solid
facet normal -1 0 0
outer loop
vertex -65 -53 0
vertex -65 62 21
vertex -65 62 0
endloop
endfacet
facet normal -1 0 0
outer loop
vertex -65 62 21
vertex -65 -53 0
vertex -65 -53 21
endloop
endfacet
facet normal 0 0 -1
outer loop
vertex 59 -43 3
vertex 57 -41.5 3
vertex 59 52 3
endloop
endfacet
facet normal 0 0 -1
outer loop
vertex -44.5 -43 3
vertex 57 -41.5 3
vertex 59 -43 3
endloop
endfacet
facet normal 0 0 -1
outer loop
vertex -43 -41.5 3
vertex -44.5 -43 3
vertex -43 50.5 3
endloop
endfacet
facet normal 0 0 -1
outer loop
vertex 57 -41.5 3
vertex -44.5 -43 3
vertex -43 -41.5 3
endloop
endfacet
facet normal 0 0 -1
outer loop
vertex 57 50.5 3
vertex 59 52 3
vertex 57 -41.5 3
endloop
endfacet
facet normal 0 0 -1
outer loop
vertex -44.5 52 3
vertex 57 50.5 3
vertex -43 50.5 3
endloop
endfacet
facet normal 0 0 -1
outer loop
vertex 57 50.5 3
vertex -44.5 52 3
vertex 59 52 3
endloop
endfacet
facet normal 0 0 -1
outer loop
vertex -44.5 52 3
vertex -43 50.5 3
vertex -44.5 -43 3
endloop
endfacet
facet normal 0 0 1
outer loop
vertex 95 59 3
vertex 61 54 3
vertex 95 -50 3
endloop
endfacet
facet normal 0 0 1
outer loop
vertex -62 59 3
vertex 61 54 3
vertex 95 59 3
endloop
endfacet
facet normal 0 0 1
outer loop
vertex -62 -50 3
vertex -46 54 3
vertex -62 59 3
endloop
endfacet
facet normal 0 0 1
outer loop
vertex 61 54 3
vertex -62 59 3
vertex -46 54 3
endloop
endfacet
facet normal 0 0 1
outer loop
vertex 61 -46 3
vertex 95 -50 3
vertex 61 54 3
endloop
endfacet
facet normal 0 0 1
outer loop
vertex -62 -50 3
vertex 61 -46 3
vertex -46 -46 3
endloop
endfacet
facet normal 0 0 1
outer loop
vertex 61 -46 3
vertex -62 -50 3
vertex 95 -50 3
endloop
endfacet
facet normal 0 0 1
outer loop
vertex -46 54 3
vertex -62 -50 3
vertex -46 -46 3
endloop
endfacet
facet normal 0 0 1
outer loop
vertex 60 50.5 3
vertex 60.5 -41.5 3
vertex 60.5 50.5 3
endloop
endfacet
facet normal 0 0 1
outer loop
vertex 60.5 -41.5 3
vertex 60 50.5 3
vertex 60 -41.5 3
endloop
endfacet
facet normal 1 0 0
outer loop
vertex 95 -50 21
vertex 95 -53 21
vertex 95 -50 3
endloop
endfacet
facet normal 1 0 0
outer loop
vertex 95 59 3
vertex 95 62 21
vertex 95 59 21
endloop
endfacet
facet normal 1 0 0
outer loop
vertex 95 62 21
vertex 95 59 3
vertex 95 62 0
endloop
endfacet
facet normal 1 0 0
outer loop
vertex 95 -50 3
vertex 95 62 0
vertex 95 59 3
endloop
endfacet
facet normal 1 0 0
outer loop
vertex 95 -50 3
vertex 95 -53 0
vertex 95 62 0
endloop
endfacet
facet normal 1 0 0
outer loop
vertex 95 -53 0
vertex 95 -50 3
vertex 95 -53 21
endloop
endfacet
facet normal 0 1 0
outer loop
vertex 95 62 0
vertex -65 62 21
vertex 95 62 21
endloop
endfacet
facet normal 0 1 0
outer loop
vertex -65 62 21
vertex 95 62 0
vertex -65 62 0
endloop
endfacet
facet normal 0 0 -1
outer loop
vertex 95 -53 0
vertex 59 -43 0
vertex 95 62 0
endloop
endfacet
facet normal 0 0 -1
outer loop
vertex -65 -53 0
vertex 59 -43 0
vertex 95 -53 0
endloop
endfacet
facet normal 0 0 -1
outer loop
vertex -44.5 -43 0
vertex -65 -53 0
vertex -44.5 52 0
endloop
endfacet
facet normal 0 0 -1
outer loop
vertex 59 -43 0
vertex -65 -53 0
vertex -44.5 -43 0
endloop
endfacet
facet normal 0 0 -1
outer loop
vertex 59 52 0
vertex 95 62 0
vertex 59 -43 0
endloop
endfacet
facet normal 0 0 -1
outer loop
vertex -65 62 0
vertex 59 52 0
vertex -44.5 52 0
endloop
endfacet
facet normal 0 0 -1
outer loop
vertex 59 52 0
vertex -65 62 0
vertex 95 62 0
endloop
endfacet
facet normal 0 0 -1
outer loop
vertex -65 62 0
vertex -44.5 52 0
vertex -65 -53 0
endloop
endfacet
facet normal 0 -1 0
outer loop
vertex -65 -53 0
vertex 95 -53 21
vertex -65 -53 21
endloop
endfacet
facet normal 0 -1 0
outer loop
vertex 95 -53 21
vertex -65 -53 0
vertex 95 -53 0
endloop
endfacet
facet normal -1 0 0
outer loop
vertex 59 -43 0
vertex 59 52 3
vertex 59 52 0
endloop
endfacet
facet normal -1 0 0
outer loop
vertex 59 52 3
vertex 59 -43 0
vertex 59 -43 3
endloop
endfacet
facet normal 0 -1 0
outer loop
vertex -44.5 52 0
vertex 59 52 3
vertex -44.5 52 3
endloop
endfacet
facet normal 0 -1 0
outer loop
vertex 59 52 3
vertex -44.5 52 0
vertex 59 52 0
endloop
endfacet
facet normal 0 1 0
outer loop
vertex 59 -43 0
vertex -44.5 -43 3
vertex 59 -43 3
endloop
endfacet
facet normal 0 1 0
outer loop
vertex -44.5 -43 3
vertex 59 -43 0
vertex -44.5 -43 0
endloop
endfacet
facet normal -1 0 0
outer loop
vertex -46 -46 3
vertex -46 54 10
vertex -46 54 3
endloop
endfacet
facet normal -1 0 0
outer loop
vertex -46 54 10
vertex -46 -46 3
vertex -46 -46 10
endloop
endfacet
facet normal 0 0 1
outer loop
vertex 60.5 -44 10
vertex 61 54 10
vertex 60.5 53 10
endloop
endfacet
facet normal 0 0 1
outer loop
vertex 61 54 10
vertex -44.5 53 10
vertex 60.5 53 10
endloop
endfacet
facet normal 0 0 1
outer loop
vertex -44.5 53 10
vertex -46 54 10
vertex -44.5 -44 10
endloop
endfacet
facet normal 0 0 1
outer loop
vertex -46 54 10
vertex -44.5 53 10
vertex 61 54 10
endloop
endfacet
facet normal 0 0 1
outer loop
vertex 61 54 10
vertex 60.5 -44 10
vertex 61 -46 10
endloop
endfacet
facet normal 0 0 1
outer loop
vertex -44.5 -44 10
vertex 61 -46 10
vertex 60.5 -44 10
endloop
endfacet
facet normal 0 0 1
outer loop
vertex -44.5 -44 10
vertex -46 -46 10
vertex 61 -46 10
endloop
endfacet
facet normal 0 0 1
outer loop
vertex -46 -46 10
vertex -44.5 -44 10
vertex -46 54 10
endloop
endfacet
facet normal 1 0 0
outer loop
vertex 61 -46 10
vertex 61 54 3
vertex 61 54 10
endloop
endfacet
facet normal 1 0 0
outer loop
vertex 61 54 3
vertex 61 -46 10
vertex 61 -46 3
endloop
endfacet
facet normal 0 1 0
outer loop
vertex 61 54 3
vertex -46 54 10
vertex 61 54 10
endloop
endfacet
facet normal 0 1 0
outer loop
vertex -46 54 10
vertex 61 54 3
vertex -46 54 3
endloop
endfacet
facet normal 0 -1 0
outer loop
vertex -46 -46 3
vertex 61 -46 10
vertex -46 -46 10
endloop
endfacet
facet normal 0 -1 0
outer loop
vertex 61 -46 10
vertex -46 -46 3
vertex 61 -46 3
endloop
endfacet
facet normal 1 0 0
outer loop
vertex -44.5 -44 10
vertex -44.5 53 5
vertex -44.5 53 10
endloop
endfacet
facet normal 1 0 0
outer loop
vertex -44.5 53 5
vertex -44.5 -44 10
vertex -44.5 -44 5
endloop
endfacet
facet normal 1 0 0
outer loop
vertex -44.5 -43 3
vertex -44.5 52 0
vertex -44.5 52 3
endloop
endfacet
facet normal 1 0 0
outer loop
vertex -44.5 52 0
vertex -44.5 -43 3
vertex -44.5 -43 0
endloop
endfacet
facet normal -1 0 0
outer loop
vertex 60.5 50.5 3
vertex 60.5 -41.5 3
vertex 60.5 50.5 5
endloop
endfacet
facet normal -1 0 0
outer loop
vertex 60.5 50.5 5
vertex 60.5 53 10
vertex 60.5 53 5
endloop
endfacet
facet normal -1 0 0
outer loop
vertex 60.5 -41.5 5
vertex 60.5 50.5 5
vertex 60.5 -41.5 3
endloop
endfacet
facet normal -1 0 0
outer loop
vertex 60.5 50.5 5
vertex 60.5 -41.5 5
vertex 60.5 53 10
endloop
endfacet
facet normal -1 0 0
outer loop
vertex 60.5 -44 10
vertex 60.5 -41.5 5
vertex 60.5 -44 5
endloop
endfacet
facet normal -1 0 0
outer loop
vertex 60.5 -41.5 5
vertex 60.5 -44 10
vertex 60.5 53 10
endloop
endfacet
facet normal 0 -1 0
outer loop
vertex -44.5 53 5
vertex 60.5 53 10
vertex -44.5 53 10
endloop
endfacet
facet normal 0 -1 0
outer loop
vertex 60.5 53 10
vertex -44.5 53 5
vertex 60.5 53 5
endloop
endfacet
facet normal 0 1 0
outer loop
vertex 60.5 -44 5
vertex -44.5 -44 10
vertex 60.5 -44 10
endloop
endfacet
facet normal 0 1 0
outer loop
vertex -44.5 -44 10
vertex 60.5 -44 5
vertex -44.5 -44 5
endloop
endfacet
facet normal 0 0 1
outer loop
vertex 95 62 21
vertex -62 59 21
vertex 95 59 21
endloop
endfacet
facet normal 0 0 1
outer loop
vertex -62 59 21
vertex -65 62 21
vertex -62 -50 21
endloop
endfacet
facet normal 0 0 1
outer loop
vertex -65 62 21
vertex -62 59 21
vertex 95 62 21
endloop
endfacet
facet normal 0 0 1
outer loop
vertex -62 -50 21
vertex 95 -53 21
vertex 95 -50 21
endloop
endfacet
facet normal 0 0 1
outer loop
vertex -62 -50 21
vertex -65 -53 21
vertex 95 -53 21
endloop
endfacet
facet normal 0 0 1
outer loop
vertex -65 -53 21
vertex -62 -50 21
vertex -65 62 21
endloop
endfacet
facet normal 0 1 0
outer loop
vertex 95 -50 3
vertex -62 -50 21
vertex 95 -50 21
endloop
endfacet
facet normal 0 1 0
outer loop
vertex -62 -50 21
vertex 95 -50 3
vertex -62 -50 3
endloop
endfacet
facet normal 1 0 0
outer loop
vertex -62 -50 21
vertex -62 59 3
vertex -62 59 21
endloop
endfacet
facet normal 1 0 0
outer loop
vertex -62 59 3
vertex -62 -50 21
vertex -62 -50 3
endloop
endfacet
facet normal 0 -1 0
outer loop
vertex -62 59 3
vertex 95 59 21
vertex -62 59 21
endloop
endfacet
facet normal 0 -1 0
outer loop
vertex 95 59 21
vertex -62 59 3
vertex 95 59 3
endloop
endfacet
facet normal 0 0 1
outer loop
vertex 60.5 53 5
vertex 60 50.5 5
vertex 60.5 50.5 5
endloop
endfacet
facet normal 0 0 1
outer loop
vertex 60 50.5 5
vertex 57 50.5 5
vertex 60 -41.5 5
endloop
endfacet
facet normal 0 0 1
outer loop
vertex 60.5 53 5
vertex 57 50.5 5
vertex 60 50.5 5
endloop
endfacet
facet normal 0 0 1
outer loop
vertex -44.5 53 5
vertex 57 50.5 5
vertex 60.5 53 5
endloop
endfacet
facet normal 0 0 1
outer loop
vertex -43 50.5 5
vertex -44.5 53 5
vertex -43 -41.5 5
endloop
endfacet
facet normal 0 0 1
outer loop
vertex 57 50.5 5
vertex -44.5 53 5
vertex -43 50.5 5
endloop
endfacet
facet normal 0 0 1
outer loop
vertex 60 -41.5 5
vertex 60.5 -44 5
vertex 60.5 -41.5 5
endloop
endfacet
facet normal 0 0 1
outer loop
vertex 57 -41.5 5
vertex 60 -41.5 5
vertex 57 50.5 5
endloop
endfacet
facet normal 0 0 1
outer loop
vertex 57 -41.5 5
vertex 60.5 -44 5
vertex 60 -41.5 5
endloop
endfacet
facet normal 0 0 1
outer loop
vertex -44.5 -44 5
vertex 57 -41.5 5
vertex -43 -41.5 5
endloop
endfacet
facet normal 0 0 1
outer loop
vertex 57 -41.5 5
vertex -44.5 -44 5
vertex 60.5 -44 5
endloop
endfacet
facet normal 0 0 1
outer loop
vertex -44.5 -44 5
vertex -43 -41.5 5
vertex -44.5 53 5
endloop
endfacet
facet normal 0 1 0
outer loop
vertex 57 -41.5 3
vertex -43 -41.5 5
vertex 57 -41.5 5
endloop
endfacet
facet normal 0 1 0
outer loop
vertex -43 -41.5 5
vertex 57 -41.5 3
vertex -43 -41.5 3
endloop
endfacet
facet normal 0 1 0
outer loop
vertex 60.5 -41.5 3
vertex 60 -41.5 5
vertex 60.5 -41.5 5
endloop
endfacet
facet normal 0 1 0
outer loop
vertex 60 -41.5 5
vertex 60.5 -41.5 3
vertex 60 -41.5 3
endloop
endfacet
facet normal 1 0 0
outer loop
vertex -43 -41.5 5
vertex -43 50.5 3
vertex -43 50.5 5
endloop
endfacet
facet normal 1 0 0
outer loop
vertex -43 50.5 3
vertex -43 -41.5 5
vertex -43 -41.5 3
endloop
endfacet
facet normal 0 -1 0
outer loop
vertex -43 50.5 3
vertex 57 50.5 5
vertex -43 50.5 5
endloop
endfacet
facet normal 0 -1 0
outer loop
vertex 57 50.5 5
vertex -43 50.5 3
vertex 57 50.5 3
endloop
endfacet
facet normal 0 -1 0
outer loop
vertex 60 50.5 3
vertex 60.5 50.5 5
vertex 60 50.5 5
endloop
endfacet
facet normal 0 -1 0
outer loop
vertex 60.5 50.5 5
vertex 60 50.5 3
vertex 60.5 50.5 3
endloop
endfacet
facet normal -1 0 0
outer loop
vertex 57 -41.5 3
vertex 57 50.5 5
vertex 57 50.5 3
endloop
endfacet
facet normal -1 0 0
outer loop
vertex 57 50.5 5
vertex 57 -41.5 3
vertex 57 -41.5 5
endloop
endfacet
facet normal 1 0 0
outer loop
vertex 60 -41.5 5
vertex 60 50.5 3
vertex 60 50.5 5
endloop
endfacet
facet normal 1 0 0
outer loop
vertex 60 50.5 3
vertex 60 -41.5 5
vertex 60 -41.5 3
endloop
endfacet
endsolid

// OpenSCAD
difference (){
    translate ([-65,-53,0]) cube ([160,115,3]);
    translate ([-45,-43,0]) cube ([104,95,18]);
}

difference(){
translate ([-46,-46,0]) cube ([107,100,10]);
translate ([-44.5,-44,0]) cube ([105,97,10]);
}

translate ([-65,-53,0]) cube ([160,3,21]);
translate ([-65,-53,0]) cube ([3,115,21]);
translate ([-65,59,0]) cube ([160,3,21]);

translate ([-46,-44.5,3])
cube ([107,3,2]);
translate ([-46,-44.5,3])
cube ([3,98,2]);
translate ([-46,50.5,3]) cube ([107,3,2]);
translate ([57,-44.5,3])
cube ([3,98,2]);
